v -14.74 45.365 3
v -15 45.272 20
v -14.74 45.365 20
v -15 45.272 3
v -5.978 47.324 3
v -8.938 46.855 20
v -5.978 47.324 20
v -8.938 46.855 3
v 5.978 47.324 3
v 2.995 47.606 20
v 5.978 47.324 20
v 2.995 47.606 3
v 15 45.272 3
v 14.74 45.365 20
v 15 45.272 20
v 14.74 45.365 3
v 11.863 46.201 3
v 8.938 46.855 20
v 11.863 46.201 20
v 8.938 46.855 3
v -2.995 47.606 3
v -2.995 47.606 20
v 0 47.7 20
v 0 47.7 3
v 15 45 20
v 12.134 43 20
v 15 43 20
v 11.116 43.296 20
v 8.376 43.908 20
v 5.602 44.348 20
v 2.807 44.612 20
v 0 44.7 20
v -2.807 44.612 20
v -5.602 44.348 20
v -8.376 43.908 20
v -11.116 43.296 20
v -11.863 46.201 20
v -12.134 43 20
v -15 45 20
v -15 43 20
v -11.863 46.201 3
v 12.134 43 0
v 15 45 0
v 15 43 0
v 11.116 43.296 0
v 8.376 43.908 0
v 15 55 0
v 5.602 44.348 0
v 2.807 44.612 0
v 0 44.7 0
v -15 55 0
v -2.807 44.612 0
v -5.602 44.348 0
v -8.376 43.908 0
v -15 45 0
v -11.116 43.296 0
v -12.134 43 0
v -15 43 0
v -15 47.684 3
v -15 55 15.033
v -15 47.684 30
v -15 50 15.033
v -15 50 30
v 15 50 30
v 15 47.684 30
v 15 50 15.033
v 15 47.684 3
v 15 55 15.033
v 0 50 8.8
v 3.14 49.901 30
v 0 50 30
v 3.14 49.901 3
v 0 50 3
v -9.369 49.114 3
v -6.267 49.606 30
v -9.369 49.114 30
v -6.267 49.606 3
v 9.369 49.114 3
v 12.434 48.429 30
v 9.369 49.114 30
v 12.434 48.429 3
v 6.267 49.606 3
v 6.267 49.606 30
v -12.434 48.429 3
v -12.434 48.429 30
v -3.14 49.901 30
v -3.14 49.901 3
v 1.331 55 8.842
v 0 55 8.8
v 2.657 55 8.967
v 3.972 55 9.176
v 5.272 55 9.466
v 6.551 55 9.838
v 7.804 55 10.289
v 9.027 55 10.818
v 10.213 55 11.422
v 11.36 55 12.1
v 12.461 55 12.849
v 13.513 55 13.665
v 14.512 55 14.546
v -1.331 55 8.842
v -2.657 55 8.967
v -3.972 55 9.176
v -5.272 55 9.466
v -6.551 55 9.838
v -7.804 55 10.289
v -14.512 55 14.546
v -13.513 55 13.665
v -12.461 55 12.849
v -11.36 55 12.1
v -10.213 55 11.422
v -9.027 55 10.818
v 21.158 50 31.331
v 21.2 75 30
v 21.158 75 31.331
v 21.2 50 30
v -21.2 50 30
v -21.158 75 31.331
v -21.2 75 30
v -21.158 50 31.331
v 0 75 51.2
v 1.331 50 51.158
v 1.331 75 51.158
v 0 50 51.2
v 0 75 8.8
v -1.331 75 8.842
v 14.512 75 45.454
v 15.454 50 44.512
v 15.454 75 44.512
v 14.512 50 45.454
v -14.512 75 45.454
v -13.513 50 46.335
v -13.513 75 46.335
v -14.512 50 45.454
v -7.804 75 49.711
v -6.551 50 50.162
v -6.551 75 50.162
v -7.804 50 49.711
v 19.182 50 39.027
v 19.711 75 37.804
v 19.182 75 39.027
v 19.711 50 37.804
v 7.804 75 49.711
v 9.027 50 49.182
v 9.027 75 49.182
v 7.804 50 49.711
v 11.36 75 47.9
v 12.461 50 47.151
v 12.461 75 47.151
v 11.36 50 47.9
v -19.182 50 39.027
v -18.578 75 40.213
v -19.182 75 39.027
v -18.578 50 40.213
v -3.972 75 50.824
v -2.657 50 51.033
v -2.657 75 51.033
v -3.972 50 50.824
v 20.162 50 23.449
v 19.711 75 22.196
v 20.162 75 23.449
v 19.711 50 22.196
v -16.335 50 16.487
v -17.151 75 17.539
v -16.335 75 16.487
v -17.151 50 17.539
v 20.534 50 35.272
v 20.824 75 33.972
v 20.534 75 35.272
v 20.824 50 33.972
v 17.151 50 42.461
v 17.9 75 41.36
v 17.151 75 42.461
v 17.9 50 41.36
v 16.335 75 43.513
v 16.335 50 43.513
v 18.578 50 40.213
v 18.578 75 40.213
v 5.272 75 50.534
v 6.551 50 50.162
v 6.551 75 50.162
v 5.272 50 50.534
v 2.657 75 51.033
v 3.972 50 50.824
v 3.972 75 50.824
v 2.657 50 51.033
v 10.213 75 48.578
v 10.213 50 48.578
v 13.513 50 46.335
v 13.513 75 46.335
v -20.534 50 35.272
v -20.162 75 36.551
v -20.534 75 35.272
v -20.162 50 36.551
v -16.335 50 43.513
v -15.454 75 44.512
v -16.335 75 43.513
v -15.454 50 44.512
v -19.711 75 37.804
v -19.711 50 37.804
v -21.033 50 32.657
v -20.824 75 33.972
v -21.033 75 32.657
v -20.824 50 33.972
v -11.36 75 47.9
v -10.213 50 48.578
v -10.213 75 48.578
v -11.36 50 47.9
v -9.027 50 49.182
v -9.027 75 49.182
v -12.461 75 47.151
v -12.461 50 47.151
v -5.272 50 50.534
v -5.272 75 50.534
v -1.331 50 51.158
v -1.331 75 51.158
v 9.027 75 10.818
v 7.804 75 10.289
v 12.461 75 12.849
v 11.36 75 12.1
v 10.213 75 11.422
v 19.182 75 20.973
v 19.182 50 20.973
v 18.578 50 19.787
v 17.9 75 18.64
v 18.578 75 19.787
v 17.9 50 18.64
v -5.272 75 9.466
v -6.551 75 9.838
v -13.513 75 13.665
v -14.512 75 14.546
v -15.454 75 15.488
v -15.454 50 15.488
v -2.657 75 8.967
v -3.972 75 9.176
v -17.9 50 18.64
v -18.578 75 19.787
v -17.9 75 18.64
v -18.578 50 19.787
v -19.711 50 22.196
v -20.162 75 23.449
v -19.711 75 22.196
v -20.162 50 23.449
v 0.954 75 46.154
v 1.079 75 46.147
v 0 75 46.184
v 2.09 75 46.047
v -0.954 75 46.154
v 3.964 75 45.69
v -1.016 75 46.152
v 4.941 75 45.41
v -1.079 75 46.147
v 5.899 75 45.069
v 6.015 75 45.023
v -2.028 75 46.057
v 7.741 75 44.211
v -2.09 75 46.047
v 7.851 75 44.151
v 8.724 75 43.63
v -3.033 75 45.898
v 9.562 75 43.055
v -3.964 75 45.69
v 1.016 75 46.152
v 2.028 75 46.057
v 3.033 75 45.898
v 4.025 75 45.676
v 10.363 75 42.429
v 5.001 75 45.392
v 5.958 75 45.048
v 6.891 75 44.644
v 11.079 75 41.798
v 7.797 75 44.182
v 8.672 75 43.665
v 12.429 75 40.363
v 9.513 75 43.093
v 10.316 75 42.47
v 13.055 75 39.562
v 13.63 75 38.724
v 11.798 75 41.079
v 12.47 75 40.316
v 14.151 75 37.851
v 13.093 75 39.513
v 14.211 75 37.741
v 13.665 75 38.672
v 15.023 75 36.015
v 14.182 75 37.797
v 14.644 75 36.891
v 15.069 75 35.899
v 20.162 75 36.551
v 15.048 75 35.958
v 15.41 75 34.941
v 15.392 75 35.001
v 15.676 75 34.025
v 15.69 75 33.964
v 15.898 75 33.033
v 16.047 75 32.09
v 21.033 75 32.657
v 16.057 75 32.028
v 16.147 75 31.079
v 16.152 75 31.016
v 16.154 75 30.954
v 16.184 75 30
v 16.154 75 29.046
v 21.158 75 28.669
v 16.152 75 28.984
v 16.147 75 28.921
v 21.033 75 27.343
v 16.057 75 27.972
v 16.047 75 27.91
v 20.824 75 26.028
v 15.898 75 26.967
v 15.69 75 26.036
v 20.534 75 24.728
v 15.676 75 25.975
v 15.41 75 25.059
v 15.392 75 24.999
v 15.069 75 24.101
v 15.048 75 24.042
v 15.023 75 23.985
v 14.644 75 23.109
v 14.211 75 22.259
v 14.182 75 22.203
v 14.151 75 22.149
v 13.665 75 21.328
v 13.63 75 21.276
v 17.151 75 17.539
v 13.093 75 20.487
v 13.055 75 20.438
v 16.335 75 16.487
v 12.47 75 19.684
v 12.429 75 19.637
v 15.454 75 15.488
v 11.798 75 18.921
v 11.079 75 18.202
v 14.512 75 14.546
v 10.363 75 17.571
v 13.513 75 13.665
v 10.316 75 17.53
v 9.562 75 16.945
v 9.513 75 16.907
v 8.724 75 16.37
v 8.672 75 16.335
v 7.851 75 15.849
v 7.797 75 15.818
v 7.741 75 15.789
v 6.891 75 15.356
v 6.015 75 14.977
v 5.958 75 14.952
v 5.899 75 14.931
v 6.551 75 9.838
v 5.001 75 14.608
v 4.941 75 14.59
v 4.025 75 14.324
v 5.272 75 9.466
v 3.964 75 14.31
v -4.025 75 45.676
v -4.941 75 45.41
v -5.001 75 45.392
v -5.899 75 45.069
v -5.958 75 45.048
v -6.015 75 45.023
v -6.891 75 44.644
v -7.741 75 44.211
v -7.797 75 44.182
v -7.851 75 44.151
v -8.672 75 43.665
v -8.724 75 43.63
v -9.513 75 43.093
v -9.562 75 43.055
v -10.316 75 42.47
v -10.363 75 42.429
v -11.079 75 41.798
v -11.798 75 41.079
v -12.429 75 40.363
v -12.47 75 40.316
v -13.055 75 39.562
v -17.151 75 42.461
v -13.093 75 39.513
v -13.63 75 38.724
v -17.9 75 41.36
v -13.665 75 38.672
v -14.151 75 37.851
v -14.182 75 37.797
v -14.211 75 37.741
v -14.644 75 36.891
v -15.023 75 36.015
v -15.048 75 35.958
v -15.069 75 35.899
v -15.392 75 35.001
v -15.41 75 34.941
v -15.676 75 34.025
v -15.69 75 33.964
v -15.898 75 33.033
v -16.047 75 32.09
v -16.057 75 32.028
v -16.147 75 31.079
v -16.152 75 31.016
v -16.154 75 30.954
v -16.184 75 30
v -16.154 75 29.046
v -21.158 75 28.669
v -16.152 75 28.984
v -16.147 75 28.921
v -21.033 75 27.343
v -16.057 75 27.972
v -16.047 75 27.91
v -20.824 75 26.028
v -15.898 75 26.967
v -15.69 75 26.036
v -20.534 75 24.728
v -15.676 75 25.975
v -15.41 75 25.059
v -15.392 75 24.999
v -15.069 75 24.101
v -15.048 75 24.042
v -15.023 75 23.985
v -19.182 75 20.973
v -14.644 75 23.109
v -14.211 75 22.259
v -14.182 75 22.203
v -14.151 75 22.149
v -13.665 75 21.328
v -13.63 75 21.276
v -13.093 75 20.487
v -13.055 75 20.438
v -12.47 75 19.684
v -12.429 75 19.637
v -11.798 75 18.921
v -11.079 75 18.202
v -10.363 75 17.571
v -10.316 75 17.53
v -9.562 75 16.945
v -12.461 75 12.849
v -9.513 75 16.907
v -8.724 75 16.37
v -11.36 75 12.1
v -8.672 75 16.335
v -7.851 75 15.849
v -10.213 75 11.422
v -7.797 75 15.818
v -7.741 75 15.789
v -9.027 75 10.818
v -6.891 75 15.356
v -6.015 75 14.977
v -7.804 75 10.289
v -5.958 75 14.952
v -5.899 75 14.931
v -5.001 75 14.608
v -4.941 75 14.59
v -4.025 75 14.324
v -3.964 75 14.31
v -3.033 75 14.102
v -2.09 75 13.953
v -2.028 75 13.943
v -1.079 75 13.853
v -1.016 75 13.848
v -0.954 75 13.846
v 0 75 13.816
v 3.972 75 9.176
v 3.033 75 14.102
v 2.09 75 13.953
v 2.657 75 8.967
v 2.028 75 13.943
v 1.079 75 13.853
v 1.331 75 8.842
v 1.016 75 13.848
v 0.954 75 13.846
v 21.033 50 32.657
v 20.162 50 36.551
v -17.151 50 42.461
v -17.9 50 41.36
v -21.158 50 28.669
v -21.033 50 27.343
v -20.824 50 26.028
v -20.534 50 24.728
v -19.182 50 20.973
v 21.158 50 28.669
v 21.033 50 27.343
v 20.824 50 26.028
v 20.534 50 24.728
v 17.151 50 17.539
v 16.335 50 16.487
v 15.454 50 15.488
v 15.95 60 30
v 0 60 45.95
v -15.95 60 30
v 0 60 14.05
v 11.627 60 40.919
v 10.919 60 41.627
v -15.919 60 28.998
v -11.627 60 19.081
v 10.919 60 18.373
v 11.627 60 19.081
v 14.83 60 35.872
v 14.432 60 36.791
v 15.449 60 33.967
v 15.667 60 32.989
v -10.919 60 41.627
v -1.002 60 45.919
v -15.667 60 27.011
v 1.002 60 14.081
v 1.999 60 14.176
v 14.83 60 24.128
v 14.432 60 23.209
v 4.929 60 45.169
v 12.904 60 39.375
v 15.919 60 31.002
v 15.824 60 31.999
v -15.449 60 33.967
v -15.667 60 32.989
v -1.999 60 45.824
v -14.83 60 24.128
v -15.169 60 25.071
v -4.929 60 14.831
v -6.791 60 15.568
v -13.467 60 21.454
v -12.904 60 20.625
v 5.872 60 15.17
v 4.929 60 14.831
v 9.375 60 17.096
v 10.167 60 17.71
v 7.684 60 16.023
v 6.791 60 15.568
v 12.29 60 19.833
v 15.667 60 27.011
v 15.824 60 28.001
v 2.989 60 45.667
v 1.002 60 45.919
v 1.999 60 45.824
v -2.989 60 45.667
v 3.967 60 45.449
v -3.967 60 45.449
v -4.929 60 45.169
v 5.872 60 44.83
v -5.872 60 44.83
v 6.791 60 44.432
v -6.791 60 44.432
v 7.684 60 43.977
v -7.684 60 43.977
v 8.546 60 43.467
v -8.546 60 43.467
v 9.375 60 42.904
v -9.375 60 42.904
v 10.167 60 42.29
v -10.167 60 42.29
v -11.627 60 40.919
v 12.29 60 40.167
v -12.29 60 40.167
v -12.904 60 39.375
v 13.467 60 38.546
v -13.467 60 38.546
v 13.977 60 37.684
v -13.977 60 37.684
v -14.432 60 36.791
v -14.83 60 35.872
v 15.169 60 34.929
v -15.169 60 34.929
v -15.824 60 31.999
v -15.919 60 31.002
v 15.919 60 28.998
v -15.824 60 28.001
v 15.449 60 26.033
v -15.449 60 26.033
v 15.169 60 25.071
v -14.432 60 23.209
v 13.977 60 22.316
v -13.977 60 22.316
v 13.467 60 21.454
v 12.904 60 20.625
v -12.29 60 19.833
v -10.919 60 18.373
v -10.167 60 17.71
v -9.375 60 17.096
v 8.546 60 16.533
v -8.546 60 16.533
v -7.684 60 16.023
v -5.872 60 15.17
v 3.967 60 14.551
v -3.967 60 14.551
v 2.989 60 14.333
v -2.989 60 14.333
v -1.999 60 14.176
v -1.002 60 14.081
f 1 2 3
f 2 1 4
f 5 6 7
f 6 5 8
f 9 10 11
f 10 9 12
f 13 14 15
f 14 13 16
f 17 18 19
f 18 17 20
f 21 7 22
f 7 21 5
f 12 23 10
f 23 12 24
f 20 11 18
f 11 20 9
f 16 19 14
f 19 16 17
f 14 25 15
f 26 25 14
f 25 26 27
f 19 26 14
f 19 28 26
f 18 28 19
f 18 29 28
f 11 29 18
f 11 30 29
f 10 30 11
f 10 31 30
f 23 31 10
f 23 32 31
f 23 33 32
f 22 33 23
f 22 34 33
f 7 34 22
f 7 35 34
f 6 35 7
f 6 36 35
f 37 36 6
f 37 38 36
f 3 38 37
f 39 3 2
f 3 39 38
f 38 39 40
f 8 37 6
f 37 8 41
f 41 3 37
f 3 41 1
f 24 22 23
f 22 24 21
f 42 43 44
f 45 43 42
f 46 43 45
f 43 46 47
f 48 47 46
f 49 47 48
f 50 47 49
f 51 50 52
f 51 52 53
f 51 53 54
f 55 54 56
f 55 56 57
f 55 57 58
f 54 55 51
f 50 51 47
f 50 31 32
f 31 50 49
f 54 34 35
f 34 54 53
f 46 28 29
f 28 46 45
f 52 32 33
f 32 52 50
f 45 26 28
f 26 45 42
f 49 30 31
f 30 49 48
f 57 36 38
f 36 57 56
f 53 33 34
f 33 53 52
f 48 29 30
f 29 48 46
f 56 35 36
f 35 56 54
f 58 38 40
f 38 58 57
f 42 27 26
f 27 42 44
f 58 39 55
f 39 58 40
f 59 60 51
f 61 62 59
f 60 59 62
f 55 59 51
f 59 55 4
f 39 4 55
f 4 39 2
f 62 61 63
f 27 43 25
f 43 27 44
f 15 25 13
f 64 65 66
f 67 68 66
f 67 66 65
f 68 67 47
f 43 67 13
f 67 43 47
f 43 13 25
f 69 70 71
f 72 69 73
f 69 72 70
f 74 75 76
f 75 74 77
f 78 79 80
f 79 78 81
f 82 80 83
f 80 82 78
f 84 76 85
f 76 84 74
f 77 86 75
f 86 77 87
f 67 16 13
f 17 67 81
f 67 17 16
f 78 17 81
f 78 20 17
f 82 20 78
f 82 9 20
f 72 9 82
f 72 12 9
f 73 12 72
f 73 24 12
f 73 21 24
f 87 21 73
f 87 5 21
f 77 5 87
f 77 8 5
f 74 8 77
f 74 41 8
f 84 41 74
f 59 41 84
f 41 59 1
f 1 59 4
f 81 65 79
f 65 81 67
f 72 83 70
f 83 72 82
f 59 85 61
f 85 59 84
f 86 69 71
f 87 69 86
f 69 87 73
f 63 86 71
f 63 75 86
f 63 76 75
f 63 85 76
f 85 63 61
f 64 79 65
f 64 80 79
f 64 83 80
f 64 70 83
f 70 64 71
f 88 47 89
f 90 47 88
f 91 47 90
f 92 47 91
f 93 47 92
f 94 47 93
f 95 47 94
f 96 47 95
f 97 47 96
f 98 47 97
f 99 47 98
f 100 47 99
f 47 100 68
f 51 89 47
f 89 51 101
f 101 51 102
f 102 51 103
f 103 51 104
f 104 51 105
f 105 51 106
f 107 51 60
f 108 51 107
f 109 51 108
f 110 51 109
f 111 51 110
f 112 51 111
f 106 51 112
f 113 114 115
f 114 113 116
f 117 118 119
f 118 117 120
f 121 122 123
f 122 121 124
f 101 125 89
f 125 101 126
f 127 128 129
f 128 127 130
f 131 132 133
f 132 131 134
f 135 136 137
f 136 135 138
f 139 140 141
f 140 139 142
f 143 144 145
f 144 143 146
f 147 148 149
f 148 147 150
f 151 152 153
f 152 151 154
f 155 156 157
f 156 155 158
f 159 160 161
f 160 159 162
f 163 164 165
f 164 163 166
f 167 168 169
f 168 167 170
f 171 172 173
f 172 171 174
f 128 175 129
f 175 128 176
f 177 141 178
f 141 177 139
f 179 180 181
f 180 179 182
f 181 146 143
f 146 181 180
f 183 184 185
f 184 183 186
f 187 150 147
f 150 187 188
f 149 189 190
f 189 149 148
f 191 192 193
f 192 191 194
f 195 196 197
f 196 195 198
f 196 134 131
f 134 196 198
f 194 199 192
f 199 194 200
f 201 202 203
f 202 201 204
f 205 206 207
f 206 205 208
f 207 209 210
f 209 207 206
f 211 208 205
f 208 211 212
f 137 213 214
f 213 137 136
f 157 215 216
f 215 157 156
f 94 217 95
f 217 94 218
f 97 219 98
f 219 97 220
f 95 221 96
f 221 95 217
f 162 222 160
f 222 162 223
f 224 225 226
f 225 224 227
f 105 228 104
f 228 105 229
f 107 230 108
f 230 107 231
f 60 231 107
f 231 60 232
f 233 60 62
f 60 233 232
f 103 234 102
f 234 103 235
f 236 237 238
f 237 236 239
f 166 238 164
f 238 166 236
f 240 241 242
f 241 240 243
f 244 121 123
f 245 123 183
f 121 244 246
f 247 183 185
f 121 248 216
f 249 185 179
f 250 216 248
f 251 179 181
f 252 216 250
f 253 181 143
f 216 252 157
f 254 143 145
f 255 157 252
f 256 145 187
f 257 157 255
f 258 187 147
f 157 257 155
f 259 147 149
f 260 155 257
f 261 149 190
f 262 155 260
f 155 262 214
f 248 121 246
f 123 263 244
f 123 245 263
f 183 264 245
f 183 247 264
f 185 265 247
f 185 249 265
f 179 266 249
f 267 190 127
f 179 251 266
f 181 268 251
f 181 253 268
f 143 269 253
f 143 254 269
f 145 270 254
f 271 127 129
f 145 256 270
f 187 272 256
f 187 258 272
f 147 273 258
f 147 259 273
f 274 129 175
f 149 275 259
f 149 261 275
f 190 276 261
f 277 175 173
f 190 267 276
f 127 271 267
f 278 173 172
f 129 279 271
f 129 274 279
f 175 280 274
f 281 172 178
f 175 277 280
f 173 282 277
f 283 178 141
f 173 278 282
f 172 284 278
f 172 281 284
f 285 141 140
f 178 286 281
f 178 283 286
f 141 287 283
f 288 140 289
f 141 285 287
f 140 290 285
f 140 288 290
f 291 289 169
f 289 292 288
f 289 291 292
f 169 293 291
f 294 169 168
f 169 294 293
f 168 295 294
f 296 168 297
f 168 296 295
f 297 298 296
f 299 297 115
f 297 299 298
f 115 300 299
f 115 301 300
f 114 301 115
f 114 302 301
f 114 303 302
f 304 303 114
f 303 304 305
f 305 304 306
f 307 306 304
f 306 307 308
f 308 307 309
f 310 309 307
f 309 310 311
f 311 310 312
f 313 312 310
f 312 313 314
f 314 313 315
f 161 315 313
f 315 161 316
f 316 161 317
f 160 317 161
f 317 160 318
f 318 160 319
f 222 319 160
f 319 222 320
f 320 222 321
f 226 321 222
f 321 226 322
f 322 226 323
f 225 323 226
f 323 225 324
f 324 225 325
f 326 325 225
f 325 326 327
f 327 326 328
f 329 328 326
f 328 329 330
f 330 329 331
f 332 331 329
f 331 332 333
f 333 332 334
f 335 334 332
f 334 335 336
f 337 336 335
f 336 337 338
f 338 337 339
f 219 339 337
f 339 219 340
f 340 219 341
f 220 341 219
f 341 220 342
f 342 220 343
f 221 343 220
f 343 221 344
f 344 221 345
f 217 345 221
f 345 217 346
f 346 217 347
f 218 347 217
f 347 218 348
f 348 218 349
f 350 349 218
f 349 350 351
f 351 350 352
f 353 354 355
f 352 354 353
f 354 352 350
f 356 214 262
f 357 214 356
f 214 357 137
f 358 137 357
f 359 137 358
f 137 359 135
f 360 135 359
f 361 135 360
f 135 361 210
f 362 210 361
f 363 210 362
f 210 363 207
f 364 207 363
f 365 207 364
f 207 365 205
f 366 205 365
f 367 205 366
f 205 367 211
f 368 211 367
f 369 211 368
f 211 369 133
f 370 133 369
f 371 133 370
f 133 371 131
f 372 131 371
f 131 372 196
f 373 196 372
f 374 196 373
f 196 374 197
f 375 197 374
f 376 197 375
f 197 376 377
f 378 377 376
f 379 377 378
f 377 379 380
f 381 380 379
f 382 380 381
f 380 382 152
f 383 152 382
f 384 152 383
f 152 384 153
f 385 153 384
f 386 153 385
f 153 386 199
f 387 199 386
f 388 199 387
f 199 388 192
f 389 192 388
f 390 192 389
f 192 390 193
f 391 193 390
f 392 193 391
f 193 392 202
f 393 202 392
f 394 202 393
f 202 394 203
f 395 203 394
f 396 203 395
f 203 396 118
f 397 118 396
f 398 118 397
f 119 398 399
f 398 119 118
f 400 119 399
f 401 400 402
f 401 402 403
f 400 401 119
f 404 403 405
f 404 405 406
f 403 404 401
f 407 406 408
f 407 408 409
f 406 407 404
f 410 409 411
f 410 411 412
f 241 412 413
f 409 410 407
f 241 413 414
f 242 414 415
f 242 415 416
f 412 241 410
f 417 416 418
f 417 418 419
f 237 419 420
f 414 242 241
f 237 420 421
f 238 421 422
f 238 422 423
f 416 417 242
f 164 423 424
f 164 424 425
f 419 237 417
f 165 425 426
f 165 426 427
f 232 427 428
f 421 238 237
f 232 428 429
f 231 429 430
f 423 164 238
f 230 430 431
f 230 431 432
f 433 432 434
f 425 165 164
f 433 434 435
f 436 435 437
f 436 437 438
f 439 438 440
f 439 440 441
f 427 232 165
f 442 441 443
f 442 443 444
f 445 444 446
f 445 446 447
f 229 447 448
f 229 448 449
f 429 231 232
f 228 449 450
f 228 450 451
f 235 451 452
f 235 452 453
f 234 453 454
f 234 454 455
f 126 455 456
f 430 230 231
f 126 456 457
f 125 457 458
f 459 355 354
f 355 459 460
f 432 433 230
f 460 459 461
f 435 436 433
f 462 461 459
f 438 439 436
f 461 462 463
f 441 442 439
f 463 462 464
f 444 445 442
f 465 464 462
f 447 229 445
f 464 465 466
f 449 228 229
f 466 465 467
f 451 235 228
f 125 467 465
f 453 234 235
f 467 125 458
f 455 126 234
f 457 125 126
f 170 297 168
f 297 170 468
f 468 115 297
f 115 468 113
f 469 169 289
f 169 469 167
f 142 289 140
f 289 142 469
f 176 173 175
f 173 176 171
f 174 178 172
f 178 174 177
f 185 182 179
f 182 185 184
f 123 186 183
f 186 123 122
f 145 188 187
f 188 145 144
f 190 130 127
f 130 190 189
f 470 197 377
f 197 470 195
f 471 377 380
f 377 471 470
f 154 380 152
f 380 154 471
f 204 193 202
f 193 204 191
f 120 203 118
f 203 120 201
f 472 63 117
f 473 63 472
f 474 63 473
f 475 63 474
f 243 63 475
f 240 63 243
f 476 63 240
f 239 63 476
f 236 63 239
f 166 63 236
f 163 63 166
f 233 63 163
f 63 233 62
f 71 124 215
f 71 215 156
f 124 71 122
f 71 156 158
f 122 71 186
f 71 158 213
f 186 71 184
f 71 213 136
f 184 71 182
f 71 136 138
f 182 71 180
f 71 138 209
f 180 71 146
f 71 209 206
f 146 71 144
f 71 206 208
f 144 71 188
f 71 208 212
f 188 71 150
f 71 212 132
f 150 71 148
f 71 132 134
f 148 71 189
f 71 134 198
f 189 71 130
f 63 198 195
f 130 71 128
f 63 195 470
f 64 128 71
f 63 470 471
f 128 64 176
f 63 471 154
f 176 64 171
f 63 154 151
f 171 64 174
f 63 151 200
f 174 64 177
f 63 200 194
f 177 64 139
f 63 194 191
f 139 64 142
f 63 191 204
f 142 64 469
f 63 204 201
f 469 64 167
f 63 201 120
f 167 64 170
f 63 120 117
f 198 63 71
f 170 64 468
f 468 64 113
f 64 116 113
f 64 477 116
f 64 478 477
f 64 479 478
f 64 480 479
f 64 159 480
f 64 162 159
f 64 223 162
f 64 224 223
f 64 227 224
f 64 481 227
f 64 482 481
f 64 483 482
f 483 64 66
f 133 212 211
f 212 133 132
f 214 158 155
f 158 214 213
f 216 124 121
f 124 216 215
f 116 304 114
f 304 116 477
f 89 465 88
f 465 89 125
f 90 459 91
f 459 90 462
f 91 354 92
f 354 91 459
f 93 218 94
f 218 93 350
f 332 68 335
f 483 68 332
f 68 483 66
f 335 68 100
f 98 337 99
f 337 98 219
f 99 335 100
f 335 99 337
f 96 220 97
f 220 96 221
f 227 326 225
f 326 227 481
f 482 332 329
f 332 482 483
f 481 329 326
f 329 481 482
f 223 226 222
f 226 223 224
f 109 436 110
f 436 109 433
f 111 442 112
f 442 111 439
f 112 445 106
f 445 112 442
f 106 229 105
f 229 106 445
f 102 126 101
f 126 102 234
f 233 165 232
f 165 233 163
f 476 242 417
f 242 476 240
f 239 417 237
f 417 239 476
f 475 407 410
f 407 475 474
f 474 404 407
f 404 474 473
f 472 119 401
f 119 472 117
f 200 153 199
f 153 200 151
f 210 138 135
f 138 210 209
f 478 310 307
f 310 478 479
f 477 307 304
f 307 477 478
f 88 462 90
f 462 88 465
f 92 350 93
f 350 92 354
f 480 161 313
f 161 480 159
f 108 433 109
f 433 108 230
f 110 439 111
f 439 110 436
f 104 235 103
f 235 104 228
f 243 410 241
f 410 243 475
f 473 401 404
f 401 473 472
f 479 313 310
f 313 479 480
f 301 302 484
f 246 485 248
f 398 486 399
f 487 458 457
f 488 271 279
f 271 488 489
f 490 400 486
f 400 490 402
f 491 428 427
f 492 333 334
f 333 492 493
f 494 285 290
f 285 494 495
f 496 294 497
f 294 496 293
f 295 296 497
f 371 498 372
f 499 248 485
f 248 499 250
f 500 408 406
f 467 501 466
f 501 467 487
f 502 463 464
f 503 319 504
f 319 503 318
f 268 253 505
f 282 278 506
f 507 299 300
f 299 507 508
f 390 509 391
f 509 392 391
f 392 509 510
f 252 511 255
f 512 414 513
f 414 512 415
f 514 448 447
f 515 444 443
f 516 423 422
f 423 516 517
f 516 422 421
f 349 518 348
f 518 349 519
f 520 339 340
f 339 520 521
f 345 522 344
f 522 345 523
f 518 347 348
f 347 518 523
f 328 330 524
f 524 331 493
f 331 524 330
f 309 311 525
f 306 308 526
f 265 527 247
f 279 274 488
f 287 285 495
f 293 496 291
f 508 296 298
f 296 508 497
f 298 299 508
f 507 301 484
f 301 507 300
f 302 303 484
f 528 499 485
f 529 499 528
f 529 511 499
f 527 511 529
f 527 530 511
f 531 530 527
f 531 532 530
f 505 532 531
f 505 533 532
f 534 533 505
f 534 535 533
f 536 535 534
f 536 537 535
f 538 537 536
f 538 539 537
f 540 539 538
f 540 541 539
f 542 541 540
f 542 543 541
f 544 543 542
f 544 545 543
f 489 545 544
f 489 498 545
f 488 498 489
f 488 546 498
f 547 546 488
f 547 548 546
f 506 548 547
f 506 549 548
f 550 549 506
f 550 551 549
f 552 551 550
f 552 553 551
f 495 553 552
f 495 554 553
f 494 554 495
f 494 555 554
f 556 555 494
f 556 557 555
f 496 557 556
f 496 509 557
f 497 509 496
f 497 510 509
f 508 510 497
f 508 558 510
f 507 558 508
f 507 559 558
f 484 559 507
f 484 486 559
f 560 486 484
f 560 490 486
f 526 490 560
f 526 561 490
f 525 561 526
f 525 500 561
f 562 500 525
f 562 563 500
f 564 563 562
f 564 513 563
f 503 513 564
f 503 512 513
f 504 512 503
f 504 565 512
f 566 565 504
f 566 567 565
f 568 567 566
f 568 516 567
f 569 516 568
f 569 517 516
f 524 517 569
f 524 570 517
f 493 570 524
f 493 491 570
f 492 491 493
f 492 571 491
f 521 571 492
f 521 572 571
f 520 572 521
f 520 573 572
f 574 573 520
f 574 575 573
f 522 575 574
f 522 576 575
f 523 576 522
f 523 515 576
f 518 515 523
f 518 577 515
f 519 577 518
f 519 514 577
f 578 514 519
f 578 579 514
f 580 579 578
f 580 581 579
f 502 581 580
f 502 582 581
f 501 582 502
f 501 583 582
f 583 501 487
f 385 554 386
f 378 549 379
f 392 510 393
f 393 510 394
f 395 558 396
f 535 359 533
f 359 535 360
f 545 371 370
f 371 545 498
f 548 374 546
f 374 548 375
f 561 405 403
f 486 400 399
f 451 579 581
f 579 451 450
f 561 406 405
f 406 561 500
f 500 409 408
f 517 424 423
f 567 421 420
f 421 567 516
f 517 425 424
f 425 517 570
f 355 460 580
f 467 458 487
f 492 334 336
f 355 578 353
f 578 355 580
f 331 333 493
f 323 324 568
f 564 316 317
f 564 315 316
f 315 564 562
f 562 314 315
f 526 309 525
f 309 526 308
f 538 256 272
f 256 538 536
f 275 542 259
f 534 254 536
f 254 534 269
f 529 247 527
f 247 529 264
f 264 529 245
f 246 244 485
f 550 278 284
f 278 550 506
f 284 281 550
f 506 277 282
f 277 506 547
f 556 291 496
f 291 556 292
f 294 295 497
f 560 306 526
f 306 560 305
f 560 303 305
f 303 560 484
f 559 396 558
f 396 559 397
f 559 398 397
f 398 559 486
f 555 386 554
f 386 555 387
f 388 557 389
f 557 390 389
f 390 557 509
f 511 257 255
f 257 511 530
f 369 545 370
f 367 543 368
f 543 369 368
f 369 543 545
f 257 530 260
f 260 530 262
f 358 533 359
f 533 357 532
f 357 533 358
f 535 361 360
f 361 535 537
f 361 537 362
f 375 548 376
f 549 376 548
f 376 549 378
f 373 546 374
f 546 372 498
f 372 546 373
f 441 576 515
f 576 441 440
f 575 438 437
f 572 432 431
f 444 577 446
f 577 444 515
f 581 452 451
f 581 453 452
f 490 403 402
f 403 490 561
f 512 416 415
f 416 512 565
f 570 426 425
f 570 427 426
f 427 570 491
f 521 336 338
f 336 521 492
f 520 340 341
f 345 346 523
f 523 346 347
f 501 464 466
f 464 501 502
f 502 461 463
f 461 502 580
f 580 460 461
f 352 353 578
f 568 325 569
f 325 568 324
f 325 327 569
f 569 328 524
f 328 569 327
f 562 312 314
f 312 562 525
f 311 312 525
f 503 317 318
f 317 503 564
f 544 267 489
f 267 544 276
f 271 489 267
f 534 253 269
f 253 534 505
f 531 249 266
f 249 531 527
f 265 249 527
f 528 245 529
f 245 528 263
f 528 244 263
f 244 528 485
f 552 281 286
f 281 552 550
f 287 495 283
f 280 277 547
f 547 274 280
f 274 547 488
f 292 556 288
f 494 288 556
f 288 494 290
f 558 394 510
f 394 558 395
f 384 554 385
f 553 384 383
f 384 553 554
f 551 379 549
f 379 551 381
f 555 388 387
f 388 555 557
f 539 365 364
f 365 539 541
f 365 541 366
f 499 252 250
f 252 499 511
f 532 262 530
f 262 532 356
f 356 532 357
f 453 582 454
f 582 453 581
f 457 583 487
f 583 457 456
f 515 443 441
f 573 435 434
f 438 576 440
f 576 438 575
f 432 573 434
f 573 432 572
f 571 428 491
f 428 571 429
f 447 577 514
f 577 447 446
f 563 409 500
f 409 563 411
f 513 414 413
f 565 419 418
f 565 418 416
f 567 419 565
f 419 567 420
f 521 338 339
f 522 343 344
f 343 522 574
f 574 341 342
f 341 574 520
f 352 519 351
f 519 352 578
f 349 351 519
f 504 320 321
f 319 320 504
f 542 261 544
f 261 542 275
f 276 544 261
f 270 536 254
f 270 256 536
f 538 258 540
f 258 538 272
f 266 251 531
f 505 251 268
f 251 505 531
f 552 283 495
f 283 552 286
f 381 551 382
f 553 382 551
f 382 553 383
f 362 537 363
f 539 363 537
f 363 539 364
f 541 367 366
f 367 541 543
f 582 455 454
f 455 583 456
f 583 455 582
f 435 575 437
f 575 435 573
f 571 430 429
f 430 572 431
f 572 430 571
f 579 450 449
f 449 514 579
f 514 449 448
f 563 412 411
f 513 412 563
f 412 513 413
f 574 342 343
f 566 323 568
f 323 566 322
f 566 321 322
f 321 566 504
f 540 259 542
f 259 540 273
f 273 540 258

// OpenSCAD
// rain gauge upper cover clamp stabilizer



$fn=100;

PR=16.20; //enter pvc pipe radius here (for standard 1" PVC, PR=16.90; for 32mm PR=16.2)

//hose clamp rim
difference(){
    cylinder (20,47.7,47.7); 
    translate([0,0,-1]) cylinder(50,44.7,44.7); 
    translate([-70,-157,-5]) cube([200,200,200]); 
    translate([-35,0,-5]) cube([20,60,50]);
    translate([15,0,-5]) cube([20,60,50]);
    }

//hose clamp slot
difference () {
    translate([-15,45,0]) cube([30,10,30]);
    translate ([0,0,3]) difference(){
        cylinder(44,50,50); 
        translate([0,0,-1]) cylinder(50,47.7,47.7); 
        }
    translate ([0,0,20]) cylinder(44,50,50); 
}

//pipe socket
translate([0,75,30]) rotate([90,0,0]) difference(){
    cylinder(25,PR+5,PR+5); 
    translate([0,0,-1]) cylinder(16,PR,PR-0.25);
    } 
